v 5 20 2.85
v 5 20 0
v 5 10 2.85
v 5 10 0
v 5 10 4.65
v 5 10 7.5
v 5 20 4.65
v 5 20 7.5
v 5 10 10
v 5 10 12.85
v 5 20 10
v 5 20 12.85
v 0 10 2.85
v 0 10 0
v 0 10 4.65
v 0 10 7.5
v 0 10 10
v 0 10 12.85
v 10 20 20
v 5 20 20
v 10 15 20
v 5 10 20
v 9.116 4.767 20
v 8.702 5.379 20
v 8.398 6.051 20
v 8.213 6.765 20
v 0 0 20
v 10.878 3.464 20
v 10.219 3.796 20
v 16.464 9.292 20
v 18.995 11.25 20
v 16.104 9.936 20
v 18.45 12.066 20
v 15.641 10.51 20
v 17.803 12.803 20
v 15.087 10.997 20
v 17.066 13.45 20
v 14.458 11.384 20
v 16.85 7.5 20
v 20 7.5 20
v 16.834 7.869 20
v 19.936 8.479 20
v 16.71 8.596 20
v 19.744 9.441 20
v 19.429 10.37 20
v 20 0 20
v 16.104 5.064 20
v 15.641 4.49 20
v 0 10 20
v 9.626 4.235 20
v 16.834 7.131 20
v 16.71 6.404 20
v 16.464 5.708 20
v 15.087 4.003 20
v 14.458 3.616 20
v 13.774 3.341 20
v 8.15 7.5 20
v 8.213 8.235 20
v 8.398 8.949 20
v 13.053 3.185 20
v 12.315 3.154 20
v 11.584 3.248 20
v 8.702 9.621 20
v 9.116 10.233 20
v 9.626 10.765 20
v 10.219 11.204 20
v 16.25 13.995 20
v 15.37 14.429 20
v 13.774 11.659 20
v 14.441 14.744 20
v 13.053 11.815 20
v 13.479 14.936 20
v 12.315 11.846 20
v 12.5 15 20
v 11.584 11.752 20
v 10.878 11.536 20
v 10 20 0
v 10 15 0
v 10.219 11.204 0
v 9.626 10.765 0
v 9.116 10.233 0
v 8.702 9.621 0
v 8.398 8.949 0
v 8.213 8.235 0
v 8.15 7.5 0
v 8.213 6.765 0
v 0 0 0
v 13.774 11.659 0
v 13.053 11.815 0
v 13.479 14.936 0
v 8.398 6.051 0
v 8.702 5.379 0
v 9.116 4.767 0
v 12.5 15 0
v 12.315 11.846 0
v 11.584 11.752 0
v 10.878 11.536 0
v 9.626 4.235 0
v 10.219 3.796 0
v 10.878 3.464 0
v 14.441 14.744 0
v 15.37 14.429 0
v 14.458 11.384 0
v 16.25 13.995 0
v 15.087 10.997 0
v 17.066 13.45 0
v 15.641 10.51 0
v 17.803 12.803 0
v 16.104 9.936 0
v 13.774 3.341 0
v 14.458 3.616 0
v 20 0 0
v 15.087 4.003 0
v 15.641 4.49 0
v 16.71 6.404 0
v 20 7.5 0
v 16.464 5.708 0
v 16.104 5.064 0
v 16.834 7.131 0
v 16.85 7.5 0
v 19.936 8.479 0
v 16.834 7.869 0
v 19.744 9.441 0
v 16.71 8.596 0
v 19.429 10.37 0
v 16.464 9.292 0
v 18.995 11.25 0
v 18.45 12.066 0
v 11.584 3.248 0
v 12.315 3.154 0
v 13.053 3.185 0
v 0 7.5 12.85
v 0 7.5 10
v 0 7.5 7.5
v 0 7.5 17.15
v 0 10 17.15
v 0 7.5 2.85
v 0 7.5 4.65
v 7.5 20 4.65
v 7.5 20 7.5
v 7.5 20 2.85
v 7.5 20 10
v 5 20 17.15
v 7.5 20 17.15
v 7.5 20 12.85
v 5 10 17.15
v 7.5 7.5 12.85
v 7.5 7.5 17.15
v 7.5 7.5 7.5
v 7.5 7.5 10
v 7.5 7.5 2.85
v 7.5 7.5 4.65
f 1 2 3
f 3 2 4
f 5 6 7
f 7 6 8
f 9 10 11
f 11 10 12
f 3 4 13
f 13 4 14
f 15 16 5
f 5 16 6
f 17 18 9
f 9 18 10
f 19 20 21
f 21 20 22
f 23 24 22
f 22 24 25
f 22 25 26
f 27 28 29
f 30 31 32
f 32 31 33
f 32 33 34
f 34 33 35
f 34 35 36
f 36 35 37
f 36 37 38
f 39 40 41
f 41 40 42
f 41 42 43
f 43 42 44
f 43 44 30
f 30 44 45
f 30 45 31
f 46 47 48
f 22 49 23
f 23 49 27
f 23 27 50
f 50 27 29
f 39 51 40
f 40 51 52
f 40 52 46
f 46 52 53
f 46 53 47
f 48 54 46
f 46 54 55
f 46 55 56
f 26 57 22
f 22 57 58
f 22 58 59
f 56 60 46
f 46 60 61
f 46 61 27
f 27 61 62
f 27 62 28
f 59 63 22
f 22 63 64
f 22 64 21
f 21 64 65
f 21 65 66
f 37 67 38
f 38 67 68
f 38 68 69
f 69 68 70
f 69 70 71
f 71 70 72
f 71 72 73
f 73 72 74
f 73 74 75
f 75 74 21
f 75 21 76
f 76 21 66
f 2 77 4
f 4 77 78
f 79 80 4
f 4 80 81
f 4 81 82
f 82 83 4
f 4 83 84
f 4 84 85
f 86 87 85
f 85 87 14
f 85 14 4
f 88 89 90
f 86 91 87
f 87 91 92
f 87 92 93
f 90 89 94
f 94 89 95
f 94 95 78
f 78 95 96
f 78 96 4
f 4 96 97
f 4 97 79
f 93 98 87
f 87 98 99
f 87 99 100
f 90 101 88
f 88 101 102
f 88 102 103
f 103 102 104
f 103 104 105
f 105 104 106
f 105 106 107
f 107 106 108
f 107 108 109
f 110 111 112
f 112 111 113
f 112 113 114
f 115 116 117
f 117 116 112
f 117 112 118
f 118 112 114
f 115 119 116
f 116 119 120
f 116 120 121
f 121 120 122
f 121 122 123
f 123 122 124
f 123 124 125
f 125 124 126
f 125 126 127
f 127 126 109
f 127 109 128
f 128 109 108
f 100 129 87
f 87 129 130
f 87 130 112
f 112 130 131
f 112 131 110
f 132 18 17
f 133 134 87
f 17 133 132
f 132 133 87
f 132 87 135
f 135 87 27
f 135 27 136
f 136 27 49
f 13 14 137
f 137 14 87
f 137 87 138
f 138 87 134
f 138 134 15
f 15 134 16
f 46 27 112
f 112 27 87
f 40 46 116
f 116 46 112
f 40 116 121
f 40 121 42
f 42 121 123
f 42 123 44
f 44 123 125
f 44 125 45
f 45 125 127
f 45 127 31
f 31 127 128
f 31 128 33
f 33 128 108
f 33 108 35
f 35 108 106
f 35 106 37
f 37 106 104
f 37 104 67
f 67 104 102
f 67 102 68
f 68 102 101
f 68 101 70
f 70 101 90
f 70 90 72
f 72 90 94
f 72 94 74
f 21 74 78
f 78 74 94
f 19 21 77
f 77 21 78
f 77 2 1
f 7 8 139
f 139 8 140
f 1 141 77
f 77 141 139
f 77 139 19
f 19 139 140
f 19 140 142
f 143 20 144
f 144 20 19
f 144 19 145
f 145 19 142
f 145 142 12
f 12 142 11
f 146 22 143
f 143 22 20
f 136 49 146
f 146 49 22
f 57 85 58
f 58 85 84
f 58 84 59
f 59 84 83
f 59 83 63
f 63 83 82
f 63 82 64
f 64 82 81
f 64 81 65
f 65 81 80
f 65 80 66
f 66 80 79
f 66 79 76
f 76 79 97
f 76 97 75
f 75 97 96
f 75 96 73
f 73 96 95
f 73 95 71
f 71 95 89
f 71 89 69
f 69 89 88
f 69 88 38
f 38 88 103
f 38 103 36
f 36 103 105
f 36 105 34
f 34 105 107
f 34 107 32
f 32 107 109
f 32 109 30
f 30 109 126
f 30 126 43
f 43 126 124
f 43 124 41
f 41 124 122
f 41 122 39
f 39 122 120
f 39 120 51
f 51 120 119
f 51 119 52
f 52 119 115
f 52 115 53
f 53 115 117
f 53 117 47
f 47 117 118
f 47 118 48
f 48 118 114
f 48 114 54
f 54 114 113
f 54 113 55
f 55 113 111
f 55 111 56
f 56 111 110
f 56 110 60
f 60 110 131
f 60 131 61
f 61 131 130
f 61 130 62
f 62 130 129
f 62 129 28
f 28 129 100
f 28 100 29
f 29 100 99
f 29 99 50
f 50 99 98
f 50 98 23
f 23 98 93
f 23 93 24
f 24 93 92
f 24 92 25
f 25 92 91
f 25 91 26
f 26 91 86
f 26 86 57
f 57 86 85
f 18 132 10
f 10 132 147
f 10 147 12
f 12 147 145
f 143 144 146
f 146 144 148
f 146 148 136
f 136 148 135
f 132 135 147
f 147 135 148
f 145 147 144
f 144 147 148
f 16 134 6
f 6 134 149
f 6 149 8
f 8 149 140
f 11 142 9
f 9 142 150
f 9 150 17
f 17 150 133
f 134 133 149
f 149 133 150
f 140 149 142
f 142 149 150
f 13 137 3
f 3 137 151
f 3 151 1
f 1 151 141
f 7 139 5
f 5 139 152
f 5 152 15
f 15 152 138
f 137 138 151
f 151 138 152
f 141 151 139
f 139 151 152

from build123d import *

# Parameters (mm, degrees)
SKETCH1_R           = 4.35
BOSS_EXTRUDE1_DEPTH = 20
SKETCH2_W           = 7.5
SKETCH2_H           = 1.8
SKETCH2_H_2         = 2.5
SKETCH2_H_3         = 4.3
CUT_EXTRUDE1_DEPTH  = 12.5


with BuildPart() as part:
    # Sketch1 → Boss-Extrude1 (new body)
    with BuildSketch(Plane.XY):
        with BuildLine():
            Line((0, 0), (20, 0))
            Line((20, 0), (20, 7.5))
            ThreePointArc((20, 7.5), (17.803300859, 12.803300859), (12.5, 15))
            Line((12.5, 15), (10, 15))
            Line((10, 15), (10, 20))
            Line((10, 20), (5, 20))
            Line((5, 20), (5, 10))
            Line((5, 10), (0, 10))
            Line((0, 10), (0, 0))
        make_face()
        with Locations((12.5, 7.5)):
            Circle(SKETCH1_R, mode=Mode.SUBTRACT)
    extrude(amount=BOSS_EXTRUDE1_DEPTH)

    # Sketch2 → Cut-Extrude1 (cut)
    with BuildSketch(Plane(origin=(0, 20, 0), x_dir=(1, 0, 0), z_dir=(0, 1, 0))):
        with Locations((3.75, -3.75)):
            Rectangle(SKETCH2_W, SKETCH2_H)
        with Locations((3.75, -8.75)):
            Rectangle(SKETCH2_W, SKETCH2_H_2)
        with Locations((3.75, -15)):
            Rectangle(SKETCH2_W, SKETCH2_H_3)
    extrude(amount=-CUT_EXTRUDE1_DEPTH, mode=Mode.SUBTRACT)


solid = part.part
